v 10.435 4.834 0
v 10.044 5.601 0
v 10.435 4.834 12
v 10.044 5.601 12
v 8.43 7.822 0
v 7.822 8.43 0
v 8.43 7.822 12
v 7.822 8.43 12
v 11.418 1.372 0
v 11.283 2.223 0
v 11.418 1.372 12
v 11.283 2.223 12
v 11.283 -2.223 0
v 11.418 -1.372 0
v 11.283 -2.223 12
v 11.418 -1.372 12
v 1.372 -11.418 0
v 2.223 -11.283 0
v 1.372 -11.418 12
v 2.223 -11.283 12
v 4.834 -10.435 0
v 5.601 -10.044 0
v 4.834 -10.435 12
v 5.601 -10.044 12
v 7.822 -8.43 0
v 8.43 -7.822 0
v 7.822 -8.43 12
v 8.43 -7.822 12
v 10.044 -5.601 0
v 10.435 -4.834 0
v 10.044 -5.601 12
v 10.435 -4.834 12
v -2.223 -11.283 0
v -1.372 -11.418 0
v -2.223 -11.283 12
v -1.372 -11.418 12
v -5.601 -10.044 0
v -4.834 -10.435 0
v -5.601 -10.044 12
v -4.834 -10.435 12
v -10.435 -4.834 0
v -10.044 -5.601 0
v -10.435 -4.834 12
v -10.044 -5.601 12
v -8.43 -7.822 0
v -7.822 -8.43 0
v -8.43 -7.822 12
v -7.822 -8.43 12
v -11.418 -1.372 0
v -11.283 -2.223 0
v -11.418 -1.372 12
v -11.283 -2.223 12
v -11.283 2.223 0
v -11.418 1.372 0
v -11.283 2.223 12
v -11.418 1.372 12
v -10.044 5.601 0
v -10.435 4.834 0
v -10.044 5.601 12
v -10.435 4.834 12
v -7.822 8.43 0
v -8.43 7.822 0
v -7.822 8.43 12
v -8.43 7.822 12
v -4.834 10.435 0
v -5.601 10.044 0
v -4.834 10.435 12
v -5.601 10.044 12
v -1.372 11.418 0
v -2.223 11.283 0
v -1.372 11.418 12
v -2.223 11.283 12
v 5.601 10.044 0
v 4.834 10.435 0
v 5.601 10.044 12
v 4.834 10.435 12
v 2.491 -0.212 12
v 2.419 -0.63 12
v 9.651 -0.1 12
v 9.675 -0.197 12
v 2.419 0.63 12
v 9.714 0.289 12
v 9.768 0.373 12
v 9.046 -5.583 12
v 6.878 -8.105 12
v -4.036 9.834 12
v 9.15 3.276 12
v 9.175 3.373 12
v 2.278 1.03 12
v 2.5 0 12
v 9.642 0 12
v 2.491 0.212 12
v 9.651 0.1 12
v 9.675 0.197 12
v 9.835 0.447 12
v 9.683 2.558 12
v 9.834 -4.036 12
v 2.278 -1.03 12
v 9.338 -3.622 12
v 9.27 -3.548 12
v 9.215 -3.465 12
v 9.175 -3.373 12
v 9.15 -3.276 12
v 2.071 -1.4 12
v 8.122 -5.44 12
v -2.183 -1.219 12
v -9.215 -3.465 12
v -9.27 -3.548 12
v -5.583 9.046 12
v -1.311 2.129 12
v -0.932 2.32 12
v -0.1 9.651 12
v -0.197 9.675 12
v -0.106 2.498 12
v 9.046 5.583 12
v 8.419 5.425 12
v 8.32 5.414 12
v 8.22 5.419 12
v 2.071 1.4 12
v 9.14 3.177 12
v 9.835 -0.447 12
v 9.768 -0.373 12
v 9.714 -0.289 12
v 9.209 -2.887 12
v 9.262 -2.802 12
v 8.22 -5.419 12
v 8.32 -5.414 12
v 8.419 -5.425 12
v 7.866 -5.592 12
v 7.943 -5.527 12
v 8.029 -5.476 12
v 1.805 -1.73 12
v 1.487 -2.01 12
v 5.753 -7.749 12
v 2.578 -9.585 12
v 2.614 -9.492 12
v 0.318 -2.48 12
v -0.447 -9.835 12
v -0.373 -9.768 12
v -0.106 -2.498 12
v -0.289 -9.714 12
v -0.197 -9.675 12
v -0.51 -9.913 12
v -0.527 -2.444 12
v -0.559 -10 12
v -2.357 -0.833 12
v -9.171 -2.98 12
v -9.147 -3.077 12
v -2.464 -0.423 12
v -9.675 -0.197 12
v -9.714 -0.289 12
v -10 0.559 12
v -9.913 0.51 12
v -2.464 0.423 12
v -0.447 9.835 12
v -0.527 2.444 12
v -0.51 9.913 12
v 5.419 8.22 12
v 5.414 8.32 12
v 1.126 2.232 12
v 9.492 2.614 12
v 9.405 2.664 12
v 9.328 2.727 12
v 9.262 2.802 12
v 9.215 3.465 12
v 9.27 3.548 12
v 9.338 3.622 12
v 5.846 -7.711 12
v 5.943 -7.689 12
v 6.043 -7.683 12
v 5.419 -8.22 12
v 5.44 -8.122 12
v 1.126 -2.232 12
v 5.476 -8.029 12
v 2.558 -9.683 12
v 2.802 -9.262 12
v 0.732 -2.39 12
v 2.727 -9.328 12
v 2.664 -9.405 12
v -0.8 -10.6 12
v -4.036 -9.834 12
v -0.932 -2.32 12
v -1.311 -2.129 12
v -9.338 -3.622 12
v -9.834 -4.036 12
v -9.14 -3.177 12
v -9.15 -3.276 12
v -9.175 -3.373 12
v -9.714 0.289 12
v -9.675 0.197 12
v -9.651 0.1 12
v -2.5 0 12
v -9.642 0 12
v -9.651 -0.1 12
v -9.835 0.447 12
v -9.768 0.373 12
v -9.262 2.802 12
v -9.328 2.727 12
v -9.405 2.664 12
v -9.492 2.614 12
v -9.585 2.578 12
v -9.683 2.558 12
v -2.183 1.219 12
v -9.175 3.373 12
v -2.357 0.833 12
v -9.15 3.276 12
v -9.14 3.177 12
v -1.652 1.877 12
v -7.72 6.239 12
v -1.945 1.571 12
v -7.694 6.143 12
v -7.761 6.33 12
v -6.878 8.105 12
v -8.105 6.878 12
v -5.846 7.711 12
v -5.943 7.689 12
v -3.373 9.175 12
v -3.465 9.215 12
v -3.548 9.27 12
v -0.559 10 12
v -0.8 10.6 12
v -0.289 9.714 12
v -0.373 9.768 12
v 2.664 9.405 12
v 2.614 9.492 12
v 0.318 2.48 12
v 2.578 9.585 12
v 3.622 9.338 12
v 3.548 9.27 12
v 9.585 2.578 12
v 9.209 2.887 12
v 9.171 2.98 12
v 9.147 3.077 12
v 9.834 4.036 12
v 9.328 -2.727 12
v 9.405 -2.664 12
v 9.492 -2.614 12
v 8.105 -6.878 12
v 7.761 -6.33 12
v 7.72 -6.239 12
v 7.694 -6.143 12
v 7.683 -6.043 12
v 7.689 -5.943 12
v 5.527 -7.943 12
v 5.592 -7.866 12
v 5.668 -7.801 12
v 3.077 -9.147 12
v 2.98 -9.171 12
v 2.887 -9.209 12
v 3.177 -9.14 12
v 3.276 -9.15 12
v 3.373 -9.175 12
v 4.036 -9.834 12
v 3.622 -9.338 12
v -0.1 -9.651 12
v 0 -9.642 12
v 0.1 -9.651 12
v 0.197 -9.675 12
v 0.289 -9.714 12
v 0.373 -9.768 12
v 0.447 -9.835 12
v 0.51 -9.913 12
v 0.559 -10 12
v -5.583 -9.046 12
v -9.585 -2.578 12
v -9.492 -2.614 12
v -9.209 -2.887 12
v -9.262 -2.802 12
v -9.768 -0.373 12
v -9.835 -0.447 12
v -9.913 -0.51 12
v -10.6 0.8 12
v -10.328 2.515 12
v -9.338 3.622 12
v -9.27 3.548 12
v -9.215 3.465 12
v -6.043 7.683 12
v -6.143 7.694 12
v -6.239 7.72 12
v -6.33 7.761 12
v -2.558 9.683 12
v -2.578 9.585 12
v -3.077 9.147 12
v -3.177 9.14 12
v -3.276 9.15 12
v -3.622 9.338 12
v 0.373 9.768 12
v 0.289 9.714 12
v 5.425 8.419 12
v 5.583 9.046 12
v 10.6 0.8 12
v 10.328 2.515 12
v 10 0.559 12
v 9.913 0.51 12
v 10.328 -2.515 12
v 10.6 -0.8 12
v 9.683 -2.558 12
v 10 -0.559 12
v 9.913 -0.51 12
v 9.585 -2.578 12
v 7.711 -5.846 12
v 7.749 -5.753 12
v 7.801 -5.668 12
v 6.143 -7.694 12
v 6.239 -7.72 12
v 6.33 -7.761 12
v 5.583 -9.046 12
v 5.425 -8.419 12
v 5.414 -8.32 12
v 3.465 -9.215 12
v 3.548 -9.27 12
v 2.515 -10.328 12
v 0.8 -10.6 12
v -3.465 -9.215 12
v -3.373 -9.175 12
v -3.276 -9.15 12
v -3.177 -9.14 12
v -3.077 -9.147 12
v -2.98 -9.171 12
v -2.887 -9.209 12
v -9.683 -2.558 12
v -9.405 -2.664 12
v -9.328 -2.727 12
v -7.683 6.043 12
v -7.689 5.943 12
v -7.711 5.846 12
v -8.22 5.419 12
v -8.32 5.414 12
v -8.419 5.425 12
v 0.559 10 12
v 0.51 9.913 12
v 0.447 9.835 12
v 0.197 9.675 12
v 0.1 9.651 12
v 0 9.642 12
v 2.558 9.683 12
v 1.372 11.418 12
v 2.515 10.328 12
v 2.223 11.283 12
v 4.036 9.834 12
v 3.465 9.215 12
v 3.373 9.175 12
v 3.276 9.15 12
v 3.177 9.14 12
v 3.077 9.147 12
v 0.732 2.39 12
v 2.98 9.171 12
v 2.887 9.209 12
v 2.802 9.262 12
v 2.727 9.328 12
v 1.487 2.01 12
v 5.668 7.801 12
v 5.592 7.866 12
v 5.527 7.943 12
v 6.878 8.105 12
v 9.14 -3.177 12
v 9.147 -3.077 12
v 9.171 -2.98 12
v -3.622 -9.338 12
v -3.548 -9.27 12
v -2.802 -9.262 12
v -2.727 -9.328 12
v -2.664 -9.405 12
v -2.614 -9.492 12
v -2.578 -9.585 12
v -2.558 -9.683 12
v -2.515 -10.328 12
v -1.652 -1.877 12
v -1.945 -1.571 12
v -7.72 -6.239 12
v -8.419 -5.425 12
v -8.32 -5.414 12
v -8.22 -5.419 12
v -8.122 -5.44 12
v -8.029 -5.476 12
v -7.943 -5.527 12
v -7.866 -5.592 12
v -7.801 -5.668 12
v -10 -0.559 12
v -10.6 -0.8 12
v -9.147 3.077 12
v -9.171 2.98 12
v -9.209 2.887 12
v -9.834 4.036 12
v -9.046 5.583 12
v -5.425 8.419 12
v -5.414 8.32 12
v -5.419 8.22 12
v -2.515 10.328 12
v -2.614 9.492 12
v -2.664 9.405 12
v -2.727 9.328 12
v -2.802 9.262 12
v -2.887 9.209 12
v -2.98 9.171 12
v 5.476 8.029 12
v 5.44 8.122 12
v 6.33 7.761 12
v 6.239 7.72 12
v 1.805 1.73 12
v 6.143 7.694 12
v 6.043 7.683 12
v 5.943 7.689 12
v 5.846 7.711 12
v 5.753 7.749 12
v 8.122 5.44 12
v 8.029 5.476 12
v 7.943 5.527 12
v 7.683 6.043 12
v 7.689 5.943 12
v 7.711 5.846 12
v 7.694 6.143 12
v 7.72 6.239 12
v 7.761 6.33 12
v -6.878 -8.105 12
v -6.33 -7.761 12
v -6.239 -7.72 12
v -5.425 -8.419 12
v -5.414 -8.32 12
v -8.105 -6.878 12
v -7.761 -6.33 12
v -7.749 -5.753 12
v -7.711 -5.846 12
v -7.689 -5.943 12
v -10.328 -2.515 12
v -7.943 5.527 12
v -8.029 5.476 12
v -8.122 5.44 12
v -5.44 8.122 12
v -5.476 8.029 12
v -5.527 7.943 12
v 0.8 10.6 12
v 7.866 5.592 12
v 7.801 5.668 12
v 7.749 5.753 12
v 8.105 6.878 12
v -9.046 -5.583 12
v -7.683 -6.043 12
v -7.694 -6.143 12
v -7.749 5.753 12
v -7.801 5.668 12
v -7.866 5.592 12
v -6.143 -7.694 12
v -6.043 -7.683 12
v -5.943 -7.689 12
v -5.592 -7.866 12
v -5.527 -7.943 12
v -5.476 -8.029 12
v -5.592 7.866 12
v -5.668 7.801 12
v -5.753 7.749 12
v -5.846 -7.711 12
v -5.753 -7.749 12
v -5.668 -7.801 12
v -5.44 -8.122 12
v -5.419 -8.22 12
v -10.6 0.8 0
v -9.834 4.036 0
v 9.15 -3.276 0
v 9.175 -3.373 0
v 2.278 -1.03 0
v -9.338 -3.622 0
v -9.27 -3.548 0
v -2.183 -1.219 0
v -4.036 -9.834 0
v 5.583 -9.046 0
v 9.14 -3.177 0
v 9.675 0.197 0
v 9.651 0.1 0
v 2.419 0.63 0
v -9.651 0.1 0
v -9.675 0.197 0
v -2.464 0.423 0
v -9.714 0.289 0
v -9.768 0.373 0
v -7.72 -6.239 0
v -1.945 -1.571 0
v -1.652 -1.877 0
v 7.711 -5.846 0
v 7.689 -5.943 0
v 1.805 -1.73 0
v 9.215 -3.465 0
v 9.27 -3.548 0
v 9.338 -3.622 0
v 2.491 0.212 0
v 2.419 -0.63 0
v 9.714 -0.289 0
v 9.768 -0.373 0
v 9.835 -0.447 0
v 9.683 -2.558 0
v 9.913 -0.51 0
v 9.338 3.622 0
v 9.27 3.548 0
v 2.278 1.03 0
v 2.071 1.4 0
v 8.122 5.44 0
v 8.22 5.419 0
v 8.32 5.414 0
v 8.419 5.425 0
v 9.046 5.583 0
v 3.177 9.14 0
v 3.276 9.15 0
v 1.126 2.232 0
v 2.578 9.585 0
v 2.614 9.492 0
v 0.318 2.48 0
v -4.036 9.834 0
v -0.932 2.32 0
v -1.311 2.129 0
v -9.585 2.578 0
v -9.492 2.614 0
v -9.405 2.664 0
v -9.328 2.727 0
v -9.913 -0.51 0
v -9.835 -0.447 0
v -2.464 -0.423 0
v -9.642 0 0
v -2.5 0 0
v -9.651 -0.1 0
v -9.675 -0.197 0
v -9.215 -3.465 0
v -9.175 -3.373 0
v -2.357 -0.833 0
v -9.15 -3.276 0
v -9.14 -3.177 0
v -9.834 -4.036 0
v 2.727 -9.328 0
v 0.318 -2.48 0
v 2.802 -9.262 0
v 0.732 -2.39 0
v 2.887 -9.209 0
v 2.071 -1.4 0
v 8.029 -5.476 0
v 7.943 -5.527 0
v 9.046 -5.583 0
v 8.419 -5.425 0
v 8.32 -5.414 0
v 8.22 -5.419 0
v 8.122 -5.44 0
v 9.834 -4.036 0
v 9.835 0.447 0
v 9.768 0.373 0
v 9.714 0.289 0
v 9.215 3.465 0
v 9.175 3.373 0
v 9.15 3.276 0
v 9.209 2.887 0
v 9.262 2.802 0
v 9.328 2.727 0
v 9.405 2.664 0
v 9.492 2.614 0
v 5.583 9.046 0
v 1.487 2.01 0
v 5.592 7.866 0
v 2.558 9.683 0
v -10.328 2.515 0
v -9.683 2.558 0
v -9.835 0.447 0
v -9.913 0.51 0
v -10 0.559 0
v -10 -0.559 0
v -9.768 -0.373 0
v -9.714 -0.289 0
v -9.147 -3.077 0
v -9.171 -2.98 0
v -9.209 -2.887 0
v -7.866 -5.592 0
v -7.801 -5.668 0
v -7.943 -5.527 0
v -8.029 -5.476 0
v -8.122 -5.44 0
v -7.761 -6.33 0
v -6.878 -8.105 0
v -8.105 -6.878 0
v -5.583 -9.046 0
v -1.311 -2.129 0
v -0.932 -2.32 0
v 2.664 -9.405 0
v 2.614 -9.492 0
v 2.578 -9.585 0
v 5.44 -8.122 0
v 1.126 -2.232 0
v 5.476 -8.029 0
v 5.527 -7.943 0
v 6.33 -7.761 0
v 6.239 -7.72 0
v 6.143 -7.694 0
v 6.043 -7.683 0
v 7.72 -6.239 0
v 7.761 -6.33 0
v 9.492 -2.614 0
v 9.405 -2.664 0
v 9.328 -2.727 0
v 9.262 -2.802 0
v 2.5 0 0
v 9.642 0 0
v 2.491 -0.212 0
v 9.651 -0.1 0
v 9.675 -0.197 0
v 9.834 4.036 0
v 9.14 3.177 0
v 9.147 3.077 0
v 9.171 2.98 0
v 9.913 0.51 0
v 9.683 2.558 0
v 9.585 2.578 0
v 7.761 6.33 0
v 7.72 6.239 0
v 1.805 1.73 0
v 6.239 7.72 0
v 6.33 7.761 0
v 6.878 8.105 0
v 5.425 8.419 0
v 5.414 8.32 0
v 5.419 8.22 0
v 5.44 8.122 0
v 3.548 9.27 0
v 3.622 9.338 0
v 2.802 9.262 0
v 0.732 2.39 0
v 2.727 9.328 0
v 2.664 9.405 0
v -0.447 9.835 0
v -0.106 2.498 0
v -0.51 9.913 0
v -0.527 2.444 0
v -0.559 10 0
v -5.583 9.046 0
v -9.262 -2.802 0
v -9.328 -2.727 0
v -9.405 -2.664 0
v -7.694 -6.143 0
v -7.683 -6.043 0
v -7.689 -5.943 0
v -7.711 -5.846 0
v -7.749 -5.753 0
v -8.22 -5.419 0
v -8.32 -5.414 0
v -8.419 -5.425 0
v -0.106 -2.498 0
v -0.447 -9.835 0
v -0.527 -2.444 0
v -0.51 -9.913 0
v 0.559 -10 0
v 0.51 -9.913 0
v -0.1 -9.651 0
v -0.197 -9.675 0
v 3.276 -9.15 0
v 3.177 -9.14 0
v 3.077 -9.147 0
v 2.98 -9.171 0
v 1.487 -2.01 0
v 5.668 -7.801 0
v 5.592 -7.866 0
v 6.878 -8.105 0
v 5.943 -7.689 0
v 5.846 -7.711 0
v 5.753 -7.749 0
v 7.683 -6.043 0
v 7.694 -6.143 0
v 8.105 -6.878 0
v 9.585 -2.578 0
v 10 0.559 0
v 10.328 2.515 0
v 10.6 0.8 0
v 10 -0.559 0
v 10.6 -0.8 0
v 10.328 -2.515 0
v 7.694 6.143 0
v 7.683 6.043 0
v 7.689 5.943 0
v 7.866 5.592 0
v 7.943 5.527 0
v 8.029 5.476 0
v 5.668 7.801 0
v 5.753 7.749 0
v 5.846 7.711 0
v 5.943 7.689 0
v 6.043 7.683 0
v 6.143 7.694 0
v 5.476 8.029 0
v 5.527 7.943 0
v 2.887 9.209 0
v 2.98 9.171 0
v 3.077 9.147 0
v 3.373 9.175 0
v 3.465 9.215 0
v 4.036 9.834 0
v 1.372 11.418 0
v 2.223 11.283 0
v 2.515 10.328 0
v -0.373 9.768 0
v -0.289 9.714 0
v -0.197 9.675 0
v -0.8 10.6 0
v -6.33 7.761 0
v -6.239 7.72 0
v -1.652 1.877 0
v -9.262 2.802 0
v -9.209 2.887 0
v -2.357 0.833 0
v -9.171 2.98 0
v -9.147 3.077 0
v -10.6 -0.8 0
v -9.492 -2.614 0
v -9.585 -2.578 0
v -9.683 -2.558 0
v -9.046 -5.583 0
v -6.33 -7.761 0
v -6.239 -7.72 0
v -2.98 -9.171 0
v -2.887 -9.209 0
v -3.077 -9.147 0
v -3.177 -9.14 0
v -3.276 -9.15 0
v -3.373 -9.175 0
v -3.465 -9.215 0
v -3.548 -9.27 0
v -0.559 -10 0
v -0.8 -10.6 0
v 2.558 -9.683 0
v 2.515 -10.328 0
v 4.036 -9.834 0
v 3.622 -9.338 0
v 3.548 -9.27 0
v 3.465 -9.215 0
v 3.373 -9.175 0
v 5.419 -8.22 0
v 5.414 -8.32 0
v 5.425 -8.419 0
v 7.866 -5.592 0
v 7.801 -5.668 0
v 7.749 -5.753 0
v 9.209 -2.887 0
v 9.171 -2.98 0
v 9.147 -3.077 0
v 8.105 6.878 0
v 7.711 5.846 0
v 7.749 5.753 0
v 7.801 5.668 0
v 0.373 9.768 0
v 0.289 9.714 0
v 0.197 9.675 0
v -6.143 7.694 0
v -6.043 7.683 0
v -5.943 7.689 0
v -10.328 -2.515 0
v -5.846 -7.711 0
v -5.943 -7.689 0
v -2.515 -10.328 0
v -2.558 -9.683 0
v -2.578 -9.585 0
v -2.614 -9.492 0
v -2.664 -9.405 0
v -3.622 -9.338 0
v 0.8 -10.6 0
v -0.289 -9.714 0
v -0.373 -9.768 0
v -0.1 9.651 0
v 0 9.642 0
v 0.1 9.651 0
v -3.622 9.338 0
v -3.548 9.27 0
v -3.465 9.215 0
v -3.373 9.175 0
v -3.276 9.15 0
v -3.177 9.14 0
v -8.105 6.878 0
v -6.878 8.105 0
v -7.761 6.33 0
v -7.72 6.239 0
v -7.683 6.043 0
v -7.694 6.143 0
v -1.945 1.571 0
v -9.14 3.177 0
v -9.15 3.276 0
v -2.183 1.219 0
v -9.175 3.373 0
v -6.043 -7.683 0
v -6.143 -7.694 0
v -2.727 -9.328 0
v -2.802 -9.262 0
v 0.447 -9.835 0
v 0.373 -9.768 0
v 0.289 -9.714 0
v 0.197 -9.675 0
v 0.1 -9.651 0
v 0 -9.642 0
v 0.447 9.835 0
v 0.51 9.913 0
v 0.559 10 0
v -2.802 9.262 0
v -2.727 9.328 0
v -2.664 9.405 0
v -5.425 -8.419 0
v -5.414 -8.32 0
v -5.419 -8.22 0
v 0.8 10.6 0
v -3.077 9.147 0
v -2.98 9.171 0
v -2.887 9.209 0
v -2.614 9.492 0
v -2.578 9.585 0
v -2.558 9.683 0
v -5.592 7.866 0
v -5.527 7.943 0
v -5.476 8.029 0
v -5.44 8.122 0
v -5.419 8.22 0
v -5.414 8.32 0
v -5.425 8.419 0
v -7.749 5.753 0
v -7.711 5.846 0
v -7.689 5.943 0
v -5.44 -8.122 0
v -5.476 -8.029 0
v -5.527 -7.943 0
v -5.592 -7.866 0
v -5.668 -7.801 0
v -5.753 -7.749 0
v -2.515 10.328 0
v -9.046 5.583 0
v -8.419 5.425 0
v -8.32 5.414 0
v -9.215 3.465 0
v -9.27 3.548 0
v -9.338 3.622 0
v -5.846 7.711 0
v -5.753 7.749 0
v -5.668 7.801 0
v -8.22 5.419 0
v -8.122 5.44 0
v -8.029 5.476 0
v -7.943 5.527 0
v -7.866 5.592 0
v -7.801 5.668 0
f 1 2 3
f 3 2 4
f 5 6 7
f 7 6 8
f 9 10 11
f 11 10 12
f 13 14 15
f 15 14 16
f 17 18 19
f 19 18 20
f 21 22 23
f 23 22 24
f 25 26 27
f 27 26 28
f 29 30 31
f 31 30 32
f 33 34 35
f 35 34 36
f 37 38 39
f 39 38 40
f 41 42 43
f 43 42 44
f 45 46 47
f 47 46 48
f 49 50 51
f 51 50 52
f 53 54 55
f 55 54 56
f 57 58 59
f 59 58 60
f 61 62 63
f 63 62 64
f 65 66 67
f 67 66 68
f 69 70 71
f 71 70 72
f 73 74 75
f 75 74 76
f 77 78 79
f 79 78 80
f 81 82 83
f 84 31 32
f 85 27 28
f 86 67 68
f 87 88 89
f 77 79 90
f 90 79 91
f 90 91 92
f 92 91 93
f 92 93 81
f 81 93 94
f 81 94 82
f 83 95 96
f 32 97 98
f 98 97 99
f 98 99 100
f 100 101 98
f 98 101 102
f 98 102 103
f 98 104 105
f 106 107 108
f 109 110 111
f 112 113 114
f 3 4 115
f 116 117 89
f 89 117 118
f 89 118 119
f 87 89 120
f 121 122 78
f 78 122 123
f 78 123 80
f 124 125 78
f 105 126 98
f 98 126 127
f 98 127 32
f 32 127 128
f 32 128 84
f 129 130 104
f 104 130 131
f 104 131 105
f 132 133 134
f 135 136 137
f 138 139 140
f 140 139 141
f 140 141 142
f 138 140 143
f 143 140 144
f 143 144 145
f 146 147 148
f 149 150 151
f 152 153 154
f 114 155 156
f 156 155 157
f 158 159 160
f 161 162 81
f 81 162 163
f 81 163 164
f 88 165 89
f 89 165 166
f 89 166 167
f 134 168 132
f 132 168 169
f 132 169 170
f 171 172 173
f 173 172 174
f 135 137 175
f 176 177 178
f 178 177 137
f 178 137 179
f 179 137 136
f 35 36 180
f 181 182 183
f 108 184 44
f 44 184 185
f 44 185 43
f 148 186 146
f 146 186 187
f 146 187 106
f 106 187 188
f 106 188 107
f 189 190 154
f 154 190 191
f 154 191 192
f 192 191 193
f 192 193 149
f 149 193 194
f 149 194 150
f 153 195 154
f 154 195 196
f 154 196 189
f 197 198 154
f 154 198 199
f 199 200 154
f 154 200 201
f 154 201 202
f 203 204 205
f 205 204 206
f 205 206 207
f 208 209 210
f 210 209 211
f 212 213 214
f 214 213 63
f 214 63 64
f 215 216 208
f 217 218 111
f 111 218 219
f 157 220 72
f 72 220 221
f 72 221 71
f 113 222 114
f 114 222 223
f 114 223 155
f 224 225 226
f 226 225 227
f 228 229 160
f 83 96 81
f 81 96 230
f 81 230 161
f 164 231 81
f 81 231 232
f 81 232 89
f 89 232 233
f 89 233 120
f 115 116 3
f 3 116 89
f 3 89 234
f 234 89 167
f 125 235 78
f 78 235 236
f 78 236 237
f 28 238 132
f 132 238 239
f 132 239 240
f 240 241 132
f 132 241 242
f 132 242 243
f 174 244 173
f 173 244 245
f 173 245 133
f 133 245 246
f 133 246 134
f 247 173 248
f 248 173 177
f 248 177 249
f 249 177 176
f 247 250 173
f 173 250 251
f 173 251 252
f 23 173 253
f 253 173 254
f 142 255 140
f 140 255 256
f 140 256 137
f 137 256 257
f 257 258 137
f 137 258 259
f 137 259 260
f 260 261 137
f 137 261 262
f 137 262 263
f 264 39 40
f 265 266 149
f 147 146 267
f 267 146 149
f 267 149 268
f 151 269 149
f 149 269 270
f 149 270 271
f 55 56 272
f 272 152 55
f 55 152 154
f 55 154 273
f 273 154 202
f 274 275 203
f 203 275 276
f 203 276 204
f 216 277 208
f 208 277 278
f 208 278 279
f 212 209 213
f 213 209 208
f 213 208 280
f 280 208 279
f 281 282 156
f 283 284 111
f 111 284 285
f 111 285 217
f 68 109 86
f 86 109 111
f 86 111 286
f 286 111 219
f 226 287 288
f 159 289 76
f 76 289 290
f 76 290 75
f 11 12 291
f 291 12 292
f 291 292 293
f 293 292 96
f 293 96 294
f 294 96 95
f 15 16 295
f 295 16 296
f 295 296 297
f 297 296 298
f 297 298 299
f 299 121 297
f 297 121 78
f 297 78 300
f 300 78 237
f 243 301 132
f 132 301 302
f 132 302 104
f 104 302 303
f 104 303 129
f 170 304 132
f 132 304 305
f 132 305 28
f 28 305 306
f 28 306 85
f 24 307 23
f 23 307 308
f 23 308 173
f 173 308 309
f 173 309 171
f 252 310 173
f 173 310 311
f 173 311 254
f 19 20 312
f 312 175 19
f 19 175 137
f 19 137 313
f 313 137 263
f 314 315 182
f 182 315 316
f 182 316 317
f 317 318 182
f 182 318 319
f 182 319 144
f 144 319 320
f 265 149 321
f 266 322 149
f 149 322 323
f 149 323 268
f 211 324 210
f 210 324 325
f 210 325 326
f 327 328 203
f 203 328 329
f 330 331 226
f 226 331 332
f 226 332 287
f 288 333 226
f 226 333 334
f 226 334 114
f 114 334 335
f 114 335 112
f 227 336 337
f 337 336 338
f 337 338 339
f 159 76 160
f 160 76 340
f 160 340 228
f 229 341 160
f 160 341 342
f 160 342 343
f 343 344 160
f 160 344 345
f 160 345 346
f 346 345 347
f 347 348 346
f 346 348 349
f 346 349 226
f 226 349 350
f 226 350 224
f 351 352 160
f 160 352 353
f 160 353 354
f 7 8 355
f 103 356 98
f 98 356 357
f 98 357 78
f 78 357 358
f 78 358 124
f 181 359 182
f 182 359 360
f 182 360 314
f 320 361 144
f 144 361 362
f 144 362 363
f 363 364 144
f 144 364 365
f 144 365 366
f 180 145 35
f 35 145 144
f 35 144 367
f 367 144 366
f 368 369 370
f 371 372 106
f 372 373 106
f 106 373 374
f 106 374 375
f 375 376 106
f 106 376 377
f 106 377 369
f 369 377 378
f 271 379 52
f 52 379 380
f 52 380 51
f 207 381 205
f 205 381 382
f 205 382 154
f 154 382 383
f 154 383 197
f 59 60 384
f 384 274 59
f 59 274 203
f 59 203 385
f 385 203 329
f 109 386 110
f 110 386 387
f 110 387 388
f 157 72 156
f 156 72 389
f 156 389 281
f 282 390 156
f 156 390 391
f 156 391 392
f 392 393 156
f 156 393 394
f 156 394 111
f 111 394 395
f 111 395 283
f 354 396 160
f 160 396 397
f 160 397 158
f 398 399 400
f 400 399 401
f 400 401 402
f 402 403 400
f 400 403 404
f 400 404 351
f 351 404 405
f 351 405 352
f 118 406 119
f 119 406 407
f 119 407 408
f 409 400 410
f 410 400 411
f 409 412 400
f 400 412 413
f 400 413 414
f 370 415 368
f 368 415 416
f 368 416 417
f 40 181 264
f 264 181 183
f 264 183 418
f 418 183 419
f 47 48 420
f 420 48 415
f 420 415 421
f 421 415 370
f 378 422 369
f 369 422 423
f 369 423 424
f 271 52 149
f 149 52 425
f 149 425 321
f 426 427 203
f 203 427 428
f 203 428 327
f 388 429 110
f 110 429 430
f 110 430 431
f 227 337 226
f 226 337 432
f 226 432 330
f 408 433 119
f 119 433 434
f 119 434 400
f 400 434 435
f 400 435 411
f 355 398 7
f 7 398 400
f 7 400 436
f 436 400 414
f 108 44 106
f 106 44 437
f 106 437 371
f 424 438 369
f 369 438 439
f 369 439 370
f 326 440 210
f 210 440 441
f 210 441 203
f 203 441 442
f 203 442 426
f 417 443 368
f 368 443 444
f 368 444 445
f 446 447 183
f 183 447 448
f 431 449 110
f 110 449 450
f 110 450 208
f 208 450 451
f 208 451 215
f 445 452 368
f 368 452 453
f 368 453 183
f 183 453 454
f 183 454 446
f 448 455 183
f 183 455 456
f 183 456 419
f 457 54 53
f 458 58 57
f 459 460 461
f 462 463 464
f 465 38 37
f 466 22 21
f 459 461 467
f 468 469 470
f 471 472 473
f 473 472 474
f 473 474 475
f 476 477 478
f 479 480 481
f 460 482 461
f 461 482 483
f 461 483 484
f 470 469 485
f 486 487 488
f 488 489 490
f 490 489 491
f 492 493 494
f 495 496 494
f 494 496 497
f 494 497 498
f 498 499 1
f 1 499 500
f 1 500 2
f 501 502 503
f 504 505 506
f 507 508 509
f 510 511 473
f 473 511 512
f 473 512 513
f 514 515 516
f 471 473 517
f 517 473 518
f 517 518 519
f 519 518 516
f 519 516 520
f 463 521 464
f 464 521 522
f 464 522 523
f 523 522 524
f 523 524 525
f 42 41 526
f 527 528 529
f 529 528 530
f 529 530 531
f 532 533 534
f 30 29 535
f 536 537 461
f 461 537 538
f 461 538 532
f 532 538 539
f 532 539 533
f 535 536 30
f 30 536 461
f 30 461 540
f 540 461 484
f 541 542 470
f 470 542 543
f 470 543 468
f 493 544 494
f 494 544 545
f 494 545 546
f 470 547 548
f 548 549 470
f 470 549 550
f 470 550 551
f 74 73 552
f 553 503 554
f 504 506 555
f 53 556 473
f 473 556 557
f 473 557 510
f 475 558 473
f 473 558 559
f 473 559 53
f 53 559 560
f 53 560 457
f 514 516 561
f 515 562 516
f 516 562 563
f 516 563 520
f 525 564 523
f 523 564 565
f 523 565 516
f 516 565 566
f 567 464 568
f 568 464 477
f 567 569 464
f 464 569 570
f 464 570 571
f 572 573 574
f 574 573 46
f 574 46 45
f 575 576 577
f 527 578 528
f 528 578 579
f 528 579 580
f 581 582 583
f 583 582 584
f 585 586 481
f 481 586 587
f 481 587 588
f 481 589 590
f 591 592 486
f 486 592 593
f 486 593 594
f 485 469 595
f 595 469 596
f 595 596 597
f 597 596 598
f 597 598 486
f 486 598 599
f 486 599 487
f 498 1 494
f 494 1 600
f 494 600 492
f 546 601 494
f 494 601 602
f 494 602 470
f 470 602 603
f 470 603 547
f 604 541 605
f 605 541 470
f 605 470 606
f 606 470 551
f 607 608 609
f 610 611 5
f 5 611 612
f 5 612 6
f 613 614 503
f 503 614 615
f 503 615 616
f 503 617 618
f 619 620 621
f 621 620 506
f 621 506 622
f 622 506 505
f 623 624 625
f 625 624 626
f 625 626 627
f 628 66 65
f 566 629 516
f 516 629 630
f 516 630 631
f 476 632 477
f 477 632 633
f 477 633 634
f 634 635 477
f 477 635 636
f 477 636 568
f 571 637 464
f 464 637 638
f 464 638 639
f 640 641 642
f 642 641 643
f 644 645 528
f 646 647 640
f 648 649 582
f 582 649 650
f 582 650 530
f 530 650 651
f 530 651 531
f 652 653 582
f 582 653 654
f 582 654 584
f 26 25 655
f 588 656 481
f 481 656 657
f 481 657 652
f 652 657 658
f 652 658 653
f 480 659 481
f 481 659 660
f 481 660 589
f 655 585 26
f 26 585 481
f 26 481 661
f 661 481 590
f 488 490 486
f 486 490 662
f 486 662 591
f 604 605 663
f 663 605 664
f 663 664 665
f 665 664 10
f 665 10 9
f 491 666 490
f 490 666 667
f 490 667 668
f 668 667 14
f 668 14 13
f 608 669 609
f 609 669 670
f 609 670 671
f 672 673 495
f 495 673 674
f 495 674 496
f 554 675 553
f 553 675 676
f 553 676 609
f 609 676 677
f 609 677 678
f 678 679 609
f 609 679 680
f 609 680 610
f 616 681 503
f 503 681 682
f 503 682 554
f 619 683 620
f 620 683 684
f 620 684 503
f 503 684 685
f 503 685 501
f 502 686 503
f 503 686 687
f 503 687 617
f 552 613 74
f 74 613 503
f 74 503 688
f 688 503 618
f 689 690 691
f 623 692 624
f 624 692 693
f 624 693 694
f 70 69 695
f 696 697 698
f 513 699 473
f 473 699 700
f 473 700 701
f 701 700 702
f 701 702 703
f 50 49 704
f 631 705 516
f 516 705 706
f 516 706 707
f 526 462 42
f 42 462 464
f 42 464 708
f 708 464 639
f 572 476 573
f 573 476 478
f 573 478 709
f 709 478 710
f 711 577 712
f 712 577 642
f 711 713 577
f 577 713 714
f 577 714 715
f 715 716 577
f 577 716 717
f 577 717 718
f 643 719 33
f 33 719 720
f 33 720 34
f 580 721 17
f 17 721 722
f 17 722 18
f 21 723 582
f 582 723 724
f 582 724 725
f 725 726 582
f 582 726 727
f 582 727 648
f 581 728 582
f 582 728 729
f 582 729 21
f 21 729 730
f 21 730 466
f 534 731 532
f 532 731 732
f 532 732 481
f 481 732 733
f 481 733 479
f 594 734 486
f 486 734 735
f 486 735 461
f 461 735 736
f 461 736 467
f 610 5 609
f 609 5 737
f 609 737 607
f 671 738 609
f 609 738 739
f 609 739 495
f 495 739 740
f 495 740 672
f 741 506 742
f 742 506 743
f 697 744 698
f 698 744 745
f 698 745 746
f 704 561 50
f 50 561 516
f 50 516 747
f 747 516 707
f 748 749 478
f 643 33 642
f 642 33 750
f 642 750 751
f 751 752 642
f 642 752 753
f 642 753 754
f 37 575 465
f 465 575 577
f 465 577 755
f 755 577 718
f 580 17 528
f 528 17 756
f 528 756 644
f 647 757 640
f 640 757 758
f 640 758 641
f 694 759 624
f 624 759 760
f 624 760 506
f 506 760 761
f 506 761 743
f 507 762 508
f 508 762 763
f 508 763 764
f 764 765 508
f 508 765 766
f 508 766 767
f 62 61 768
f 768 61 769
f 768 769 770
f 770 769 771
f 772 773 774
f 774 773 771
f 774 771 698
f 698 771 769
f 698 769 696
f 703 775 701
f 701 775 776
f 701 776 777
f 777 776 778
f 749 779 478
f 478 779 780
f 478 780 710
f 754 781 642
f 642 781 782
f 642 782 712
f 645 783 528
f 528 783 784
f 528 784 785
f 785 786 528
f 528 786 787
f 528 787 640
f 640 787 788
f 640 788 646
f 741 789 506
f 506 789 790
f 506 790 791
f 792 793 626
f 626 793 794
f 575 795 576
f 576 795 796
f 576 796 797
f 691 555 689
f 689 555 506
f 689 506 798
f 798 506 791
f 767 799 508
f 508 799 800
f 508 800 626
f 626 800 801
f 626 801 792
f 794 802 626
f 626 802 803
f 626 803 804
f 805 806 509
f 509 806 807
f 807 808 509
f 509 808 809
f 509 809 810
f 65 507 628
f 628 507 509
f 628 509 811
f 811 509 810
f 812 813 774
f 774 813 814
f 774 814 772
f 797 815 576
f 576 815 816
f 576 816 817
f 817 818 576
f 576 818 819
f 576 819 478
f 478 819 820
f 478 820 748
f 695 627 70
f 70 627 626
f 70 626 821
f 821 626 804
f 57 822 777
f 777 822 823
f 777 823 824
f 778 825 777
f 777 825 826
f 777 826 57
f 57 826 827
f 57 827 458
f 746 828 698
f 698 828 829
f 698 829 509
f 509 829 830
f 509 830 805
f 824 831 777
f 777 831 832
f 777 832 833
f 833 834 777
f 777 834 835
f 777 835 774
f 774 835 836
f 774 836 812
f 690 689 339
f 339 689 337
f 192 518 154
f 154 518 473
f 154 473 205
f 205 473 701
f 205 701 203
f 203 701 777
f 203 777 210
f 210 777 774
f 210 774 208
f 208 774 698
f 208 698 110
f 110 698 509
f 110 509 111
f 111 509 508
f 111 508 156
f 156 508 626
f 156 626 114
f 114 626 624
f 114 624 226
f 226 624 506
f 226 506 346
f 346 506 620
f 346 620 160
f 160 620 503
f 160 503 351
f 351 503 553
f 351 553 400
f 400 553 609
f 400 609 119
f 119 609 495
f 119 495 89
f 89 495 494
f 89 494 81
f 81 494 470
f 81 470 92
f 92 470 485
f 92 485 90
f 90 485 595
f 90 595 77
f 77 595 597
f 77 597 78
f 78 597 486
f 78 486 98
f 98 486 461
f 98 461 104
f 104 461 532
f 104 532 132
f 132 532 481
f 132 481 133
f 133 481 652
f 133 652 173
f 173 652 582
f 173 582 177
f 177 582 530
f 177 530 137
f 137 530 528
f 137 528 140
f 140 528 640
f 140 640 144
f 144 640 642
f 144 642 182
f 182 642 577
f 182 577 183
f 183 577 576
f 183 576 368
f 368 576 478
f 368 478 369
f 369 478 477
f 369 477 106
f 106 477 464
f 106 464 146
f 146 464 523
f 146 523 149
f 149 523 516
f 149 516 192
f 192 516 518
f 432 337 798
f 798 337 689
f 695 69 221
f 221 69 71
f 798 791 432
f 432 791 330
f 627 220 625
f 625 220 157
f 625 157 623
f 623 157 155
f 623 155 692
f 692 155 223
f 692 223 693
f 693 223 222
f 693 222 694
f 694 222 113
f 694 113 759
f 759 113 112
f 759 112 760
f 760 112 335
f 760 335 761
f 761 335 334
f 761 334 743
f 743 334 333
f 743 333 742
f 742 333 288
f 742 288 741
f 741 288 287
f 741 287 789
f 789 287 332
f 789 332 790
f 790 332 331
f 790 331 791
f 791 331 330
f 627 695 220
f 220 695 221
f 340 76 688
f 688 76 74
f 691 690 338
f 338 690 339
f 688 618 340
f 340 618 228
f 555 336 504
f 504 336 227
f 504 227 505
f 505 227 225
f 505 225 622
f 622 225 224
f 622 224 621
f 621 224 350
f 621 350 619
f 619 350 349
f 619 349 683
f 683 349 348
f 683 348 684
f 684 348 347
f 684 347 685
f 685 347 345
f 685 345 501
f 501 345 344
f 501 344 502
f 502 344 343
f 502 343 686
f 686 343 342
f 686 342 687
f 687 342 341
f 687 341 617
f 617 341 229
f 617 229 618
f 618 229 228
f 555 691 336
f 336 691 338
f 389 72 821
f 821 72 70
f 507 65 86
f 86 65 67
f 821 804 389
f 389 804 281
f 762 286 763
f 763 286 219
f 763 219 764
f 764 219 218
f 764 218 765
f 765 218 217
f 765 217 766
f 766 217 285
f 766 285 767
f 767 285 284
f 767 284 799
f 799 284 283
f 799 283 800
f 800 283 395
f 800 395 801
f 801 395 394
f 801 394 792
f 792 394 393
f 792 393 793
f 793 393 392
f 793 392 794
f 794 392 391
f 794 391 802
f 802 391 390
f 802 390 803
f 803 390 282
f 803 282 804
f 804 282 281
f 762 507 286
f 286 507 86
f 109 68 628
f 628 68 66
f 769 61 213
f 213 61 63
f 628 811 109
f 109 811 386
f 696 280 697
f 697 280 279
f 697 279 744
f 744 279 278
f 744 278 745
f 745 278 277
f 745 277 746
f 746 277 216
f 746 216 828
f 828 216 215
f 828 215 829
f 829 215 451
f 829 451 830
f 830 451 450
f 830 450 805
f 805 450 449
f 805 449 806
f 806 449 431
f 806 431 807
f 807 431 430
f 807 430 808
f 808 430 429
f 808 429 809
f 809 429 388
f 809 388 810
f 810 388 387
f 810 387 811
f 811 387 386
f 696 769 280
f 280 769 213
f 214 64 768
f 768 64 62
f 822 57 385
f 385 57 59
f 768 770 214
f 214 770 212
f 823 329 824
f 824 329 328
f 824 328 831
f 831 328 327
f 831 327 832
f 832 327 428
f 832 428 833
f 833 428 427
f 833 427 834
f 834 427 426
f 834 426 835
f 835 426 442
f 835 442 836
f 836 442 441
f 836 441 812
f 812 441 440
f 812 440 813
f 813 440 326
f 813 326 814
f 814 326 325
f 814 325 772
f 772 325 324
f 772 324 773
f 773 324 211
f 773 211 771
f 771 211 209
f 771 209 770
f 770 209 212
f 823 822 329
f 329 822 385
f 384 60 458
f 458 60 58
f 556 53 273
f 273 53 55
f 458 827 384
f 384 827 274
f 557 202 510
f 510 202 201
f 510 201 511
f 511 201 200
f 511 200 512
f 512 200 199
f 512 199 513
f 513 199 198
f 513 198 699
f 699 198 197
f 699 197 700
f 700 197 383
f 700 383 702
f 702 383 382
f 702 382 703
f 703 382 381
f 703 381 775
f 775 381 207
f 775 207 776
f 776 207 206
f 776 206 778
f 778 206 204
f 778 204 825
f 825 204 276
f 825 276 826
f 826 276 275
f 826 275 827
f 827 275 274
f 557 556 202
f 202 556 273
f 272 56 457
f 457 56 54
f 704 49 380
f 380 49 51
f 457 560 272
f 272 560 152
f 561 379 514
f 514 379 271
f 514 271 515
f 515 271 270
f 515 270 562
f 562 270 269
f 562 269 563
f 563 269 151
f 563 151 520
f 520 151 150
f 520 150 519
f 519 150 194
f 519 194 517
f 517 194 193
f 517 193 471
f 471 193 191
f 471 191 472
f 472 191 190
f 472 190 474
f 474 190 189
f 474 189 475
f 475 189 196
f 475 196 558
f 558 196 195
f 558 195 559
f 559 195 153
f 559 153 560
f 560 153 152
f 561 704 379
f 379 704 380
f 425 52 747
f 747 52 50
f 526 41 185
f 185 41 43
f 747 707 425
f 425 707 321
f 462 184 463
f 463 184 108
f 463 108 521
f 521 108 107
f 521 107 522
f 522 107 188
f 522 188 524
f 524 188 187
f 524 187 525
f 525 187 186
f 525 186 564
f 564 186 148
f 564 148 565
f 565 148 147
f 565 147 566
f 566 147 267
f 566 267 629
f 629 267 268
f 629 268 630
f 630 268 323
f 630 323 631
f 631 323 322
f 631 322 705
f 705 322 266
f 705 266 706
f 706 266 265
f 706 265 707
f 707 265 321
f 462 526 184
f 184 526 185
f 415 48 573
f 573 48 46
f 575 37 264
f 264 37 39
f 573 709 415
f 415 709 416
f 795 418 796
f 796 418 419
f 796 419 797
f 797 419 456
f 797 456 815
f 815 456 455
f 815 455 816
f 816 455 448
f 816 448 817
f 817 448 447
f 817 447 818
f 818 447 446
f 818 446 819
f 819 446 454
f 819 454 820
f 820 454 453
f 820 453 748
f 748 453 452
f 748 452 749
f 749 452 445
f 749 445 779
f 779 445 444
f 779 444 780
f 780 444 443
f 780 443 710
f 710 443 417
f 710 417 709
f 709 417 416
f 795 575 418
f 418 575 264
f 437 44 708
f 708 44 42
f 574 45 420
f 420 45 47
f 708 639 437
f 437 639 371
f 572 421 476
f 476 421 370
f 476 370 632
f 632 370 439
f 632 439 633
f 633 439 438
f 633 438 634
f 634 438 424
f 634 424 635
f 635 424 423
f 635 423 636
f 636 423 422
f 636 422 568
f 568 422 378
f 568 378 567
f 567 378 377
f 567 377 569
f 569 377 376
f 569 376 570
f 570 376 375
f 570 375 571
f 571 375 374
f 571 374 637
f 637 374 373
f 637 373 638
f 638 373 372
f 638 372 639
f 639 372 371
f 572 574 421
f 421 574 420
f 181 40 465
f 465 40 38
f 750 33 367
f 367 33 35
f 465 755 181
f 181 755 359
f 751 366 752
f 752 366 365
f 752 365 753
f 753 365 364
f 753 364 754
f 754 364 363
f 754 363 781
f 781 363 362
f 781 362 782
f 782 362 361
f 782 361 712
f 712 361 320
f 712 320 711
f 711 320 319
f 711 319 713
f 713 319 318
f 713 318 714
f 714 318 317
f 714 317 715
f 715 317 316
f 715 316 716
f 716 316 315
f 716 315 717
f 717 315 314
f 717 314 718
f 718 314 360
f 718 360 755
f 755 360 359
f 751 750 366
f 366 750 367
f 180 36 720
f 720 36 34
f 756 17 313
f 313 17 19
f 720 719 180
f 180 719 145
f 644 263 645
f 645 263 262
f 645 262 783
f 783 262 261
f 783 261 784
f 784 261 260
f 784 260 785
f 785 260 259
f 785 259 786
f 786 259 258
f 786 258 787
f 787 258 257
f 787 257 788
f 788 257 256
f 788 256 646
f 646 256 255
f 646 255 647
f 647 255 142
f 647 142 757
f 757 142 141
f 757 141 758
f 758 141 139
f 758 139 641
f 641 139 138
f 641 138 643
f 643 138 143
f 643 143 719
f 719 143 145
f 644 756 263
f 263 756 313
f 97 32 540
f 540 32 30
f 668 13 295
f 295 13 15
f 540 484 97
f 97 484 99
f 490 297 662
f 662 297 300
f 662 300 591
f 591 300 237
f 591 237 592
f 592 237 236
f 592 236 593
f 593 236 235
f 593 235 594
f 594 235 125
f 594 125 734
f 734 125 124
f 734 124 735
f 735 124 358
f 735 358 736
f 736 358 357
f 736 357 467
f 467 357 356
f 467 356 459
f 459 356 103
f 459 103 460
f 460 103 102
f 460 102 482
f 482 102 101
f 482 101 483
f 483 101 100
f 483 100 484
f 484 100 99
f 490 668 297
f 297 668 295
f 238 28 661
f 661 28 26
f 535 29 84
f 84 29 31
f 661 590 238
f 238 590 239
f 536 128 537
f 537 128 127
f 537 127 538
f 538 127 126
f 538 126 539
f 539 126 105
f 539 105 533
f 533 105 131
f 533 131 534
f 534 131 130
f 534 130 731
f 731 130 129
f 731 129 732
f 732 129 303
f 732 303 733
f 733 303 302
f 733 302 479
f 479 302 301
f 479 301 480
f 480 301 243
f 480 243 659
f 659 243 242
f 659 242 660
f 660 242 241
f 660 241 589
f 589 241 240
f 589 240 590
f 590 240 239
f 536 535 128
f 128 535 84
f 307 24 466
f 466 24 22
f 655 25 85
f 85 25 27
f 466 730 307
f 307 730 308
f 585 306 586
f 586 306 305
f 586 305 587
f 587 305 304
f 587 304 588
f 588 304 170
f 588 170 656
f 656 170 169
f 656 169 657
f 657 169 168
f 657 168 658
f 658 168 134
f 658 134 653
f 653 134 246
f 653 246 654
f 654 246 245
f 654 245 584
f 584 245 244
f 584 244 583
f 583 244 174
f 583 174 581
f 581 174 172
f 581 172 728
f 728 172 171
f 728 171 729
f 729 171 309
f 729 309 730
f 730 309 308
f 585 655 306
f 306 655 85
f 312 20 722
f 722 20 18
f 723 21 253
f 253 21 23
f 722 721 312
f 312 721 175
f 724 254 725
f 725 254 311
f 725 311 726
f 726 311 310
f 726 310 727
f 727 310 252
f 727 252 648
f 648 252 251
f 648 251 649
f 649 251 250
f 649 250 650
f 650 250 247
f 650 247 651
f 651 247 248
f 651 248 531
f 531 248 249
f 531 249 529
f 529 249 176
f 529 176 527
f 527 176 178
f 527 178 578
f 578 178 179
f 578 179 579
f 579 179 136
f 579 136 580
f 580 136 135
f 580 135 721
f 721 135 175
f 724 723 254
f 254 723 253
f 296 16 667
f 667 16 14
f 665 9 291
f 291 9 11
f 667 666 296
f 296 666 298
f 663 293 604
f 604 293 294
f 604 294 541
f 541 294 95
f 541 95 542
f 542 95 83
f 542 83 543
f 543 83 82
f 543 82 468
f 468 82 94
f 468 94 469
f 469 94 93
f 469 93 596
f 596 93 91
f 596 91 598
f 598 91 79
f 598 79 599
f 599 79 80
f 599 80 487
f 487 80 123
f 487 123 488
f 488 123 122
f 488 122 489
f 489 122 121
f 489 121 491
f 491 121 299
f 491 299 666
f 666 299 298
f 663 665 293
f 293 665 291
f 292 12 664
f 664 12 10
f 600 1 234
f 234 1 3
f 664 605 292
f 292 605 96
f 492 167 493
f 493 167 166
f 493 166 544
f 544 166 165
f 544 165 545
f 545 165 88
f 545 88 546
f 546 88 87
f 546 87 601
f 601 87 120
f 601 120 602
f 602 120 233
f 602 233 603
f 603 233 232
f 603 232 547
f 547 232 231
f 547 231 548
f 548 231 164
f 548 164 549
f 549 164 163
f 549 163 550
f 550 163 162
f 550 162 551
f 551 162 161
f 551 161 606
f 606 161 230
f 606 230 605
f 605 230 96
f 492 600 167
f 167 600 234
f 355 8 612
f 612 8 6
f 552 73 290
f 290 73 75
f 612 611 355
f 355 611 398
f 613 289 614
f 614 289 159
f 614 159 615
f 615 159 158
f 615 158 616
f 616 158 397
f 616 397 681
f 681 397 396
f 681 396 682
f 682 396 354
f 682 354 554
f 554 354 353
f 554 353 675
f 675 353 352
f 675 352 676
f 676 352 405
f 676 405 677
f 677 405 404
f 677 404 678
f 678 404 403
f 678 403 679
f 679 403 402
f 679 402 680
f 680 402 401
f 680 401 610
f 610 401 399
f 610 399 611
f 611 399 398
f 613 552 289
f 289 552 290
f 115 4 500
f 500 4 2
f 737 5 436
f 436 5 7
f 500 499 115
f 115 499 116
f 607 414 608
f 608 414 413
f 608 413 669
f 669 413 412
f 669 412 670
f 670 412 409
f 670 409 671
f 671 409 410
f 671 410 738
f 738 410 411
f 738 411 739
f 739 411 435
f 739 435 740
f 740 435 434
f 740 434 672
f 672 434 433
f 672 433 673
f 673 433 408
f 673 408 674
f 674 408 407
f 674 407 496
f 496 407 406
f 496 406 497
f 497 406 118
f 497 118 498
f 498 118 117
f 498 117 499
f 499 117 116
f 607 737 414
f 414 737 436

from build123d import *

# Parameters (mm, degrees)
SKETCH1_R           = 11.5
SKETCH1_R_2         = 2.5
BOSS_EXTRUDE1_DEPTH = 12
CUT_EXTRUDE1_DEPTH  = 12
CIRPATTERN1_COUNT   = 20


with BuildPart() as part:
    # Sketch1 → Boss-Extrude1 (new body)
    with BuildSketch(Plane.XY):
        Circle(SKETCH1_R)
        Circle(SKETCH1_R_2, mode=Mode.SUBTRACT)
    extrude(amount=BOSS_EXTRUDE1_DEPTH)

    # Sketch2 → Cut-Extrude1 (cut)
    with BuildSketch(Plane.XY.offset(12)):
        with BuildLine():
            Line((0, 11.6), (1.5, 11.6))
            Line((1.5, 11.6), (0.8, 10.6))
            Line((0.8, 10.6), (0.559317479, 10))
            ThreePointArc((0.559317479, 10), (0, 9.642447684), (-0.559317479, 10))
            Line((-0.559317479, 10), (-0.8, 10.6))
            Line((-0.8, 10.6), (-1.5, 11.6))
            Line((-1.5, 11.6), (0, 11.6))
        make_face()
    cut_extrude1 = extrude(amount=-CUT_EXTRUDE1_DEPTH, mode=Mode.SUBTRACT)

    # CirPattern1: Cut-Extrude1 ×20 about axis
    cirpattern1_axis = Axis((0, 0, 0), (0, 0, 1))
    for i in range(1, CIRPATTERN1_COUNT):
        add(cut_extrude1.rotate(cirpattern1_axis, i * 360 / CIRPATTERN1_COUNT), mode=Mode.SUBTRACT)


solid = part.part
